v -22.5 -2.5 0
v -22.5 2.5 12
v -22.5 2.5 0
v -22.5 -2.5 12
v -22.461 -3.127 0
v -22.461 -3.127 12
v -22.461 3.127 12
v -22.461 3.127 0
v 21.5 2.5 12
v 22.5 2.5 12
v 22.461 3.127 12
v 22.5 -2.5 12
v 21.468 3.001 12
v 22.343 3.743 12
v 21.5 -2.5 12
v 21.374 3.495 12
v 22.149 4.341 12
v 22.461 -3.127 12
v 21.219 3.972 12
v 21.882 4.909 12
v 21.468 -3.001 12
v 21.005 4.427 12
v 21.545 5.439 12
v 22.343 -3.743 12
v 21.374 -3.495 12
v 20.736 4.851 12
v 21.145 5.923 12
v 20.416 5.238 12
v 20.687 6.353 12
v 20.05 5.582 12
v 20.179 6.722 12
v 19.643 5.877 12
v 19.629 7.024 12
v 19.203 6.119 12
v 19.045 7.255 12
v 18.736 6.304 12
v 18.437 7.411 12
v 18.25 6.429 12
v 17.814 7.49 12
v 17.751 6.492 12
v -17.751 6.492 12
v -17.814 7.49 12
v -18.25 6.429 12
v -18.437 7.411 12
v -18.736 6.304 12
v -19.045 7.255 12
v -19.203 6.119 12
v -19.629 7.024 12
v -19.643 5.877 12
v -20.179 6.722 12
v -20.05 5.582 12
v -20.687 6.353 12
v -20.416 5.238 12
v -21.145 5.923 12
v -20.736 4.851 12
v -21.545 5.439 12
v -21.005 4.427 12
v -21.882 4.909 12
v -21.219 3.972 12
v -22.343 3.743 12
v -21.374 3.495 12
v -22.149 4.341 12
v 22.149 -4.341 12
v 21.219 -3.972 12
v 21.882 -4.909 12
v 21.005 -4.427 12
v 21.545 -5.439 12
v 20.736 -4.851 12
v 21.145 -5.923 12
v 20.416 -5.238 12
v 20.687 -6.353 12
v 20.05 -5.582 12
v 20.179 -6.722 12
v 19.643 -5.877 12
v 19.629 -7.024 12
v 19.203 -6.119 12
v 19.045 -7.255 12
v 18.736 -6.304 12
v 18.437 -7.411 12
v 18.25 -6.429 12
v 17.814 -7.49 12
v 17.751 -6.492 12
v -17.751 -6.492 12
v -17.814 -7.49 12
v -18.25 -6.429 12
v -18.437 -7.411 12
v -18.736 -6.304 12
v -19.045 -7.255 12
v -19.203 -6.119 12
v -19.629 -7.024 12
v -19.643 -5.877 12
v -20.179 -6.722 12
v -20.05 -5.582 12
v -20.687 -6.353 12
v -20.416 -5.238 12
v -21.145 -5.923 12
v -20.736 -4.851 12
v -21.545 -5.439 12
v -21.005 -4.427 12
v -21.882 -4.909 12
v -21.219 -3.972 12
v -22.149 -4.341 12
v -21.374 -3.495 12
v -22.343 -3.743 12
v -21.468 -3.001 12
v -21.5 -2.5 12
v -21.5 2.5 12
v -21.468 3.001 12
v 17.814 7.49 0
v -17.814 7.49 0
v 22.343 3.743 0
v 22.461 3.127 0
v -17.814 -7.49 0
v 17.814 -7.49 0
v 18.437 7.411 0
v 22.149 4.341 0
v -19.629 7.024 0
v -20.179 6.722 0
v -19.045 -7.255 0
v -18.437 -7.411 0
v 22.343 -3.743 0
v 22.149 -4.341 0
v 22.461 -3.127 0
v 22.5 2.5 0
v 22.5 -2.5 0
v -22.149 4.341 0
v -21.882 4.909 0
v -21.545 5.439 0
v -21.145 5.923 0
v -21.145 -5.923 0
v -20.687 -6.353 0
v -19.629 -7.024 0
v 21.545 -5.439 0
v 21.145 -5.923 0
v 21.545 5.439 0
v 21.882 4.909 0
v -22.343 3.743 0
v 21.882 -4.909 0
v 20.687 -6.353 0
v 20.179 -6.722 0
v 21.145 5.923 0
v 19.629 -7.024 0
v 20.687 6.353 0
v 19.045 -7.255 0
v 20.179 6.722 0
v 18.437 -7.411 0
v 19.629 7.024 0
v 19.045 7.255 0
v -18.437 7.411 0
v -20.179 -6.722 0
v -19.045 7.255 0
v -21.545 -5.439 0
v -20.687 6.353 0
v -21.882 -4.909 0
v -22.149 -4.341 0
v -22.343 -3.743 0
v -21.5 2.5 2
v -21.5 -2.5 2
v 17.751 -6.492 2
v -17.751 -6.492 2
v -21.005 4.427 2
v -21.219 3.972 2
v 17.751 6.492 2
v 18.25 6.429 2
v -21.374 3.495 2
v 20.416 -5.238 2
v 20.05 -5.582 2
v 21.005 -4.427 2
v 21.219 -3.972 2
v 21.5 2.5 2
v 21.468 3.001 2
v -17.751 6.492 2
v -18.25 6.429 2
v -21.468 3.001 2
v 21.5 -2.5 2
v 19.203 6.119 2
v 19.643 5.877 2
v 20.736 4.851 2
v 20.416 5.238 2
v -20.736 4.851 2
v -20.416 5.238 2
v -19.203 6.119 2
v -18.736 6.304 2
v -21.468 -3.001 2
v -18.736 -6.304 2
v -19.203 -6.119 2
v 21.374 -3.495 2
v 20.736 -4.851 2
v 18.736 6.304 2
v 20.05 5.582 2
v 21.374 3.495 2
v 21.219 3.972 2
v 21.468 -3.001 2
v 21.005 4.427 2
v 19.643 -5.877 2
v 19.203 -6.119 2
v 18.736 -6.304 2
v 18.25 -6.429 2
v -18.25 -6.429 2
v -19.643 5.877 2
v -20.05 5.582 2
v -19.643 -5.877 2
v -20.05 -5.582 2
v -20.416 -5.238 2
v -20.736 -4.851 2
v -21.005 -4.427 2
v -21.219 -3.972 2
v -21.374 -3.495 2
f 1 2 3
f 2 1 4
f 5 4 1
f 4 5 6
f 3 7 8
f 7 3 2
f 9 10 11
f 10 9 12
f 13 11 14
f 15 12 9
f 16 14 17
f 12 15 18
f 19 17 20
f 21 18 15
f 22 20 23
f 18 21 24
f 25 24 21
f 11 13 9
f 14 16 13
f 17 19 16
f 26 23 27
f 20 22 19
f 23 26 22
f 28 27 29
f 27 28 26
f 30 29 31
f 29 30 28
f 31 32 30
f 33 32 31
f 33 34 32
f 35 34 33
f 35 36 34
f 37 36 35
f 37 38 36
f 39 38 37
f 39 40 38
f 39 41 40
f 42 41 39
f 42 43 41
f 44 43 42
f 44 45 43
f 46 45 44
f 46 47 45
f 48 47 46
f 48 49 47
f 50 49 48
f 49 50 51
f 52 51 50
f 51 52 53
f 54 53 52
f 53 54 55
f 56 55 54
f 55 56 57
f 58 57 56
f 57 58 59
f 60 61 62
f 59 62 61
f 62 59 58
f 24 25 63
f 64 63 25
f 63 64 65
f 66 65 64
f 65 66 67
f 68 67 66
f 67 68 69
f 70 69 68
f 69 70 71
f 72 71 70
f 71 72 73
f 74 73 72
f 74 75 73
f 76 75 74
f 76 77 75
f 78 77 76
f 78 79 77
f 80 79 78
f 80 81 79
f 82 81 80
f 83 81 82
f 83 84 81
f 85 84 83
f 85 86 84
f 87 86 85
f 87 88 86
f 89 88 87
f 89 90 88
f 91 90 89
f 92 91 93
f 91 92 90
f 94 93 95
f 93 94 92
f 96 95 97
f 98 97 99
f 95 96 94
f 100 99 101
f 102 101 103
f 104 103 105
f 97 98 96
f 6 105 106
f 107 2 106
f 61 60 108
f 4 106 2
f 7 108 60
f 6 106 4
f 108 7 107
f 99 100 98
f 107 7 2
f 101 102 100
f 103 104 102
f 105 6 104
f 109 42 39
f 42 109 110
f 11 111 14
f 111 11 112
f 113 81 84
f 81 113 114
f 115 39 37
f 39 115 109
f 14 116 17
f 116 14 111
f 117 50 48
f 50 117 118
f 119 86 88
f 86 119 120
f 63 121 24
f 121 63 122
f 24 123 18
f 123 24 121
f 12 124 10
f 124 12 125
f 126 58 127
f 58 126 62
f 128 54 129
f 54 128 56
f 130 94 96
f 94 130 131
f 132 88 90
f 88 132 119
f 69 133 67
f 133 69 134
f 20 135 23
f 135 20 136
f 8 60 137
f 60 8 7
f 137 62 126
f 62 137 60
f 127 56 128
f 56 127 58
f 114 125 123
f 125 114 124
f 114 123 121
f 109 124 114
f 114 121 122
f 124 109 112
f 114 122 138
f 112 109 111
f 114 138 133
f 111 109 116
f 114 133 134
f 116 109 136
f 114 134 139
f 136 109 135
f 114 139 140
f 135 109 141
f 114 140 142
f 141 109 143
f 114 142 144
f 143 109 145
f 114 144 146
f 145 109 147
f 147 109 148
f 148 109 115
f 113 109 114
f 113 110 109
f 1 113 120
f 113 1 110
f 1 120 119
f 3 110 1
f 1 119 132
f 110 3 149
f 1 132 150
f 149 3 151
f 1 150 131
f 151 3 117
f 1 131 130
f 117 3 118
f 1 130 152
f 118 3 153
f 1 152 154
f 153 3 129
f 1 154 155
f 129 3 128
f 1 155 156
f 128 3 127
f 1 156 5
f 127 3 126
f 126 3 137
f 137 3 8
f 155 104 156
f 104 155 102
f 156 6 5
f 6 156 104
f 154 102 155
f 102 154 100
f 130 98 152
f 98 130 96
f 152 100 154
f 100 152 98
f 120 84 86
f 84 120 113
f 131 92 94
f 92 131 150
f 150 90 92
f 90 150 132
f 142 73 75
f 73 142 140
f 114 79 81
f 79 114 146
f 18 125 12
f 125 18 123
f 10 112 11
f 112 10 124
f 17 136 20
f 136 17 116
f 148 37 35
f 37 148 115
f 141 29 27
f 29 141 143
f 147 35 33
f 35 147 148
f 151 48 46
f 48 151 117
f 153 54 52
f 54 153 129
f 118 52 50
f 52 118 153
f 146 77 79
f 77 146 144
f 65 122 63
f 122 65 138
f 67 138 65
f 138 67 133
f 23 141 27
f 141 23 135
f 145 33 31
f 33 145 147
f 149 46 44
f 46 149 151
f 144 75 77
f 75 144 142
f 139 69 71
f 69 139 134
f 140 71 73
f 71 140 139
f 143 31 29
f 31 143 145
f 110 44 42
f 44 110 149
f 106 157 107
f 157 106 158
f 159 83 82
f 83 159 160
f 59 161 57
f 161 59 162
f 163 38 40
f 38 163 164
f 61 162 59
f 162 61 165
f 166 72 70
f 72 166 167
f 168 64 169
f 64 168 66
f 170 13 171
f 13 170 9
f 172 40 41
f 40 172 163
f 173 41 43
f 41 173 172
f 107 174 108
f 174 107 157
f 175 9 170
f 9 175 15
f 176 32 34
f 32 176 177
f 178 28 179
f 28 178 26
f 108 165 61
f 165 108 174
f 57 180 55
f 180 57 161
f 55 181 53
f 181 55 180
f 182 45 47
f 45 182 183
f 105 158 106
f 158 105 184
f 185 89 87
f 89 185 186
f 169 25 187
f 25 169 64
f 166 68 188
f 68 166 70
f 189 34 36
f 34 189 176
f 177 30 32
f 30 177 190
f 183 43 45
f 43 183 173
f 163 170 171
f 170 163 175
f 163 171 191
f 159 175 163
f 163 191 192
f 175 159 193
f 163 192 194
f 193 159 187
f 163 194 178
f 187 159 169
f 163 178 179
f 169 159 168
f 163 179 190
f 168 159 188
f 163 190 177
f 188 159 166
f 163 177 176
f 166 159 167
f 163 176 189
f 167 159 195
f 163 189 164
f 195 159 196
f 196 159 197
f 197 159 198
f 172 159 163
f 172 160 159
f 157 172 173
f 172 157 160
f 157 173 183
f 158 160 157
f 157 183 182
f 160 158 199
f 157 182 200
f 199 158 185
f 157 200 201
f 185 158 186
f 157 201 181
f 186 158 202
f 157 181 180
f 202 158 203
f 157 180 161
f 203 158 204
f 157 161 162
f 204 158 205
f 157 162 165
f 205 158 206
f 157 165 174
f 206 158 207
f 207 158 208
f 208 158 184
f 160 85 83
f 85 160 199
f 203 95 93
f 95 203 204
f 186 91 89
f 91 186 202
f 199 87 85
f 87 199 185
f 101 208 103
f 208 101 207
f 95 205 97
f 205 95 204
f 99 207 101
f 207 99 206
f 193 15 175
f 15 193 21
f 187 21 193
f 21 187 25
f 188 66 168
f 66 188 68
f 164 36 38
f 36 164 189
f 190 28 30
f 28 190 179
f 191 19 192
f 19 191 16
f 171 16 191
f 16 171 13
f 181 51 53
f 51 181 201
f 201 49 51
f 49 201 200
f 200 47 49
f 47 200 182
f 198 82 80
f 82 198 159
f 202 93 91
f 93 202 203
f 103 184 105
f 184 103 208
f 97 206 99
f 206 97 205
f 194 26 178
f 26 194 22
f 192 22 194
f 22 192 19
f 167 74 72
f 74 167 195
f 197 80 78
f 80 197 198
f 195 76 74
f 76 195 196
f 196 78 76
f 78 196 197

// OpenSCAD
$fn = 50;


difference() {
	union() {
		hull() {
			translate(v = [-17.5000000000, 2.5000000000, 0]) {
				cylinder(h = 12, r = 5);
			}
			translate(v = [17.5000000000, 2.5000000000, 0]) {
				cylinder(h = 12, r = 5);
			}
			translate(v = [-17.5000000000, -2.5000000000, 0]) {
				cylinder(h = 12, r = 5);
			}
			translate(v = [17.5000000000, -2.5000000000, 0]) {
				cylinder(h = 12, r = 5);
			}
		}
	}
	union() {
		translate(v = [0, 0, 2]) {
			hull() {
				translate(v = [-17.5000000000, 2.5000000000, 0]) {
					cylinder(h = 10, r = 4);
				}
				translate(v = [17.5000000000, 2.5000000000, 0]) {
					cylinder(h = 10, r = 4);
				}
				translate(v = [-17.5000000000, -2.5000000000, 0]) {
					cylinder(h = 10, r = 4);
				}
				translate(v = [17.5000000000, -2.5000000000, 0]) {
					cylinder(h = 10, r = 4);
				}
			}
		}
	}
}
